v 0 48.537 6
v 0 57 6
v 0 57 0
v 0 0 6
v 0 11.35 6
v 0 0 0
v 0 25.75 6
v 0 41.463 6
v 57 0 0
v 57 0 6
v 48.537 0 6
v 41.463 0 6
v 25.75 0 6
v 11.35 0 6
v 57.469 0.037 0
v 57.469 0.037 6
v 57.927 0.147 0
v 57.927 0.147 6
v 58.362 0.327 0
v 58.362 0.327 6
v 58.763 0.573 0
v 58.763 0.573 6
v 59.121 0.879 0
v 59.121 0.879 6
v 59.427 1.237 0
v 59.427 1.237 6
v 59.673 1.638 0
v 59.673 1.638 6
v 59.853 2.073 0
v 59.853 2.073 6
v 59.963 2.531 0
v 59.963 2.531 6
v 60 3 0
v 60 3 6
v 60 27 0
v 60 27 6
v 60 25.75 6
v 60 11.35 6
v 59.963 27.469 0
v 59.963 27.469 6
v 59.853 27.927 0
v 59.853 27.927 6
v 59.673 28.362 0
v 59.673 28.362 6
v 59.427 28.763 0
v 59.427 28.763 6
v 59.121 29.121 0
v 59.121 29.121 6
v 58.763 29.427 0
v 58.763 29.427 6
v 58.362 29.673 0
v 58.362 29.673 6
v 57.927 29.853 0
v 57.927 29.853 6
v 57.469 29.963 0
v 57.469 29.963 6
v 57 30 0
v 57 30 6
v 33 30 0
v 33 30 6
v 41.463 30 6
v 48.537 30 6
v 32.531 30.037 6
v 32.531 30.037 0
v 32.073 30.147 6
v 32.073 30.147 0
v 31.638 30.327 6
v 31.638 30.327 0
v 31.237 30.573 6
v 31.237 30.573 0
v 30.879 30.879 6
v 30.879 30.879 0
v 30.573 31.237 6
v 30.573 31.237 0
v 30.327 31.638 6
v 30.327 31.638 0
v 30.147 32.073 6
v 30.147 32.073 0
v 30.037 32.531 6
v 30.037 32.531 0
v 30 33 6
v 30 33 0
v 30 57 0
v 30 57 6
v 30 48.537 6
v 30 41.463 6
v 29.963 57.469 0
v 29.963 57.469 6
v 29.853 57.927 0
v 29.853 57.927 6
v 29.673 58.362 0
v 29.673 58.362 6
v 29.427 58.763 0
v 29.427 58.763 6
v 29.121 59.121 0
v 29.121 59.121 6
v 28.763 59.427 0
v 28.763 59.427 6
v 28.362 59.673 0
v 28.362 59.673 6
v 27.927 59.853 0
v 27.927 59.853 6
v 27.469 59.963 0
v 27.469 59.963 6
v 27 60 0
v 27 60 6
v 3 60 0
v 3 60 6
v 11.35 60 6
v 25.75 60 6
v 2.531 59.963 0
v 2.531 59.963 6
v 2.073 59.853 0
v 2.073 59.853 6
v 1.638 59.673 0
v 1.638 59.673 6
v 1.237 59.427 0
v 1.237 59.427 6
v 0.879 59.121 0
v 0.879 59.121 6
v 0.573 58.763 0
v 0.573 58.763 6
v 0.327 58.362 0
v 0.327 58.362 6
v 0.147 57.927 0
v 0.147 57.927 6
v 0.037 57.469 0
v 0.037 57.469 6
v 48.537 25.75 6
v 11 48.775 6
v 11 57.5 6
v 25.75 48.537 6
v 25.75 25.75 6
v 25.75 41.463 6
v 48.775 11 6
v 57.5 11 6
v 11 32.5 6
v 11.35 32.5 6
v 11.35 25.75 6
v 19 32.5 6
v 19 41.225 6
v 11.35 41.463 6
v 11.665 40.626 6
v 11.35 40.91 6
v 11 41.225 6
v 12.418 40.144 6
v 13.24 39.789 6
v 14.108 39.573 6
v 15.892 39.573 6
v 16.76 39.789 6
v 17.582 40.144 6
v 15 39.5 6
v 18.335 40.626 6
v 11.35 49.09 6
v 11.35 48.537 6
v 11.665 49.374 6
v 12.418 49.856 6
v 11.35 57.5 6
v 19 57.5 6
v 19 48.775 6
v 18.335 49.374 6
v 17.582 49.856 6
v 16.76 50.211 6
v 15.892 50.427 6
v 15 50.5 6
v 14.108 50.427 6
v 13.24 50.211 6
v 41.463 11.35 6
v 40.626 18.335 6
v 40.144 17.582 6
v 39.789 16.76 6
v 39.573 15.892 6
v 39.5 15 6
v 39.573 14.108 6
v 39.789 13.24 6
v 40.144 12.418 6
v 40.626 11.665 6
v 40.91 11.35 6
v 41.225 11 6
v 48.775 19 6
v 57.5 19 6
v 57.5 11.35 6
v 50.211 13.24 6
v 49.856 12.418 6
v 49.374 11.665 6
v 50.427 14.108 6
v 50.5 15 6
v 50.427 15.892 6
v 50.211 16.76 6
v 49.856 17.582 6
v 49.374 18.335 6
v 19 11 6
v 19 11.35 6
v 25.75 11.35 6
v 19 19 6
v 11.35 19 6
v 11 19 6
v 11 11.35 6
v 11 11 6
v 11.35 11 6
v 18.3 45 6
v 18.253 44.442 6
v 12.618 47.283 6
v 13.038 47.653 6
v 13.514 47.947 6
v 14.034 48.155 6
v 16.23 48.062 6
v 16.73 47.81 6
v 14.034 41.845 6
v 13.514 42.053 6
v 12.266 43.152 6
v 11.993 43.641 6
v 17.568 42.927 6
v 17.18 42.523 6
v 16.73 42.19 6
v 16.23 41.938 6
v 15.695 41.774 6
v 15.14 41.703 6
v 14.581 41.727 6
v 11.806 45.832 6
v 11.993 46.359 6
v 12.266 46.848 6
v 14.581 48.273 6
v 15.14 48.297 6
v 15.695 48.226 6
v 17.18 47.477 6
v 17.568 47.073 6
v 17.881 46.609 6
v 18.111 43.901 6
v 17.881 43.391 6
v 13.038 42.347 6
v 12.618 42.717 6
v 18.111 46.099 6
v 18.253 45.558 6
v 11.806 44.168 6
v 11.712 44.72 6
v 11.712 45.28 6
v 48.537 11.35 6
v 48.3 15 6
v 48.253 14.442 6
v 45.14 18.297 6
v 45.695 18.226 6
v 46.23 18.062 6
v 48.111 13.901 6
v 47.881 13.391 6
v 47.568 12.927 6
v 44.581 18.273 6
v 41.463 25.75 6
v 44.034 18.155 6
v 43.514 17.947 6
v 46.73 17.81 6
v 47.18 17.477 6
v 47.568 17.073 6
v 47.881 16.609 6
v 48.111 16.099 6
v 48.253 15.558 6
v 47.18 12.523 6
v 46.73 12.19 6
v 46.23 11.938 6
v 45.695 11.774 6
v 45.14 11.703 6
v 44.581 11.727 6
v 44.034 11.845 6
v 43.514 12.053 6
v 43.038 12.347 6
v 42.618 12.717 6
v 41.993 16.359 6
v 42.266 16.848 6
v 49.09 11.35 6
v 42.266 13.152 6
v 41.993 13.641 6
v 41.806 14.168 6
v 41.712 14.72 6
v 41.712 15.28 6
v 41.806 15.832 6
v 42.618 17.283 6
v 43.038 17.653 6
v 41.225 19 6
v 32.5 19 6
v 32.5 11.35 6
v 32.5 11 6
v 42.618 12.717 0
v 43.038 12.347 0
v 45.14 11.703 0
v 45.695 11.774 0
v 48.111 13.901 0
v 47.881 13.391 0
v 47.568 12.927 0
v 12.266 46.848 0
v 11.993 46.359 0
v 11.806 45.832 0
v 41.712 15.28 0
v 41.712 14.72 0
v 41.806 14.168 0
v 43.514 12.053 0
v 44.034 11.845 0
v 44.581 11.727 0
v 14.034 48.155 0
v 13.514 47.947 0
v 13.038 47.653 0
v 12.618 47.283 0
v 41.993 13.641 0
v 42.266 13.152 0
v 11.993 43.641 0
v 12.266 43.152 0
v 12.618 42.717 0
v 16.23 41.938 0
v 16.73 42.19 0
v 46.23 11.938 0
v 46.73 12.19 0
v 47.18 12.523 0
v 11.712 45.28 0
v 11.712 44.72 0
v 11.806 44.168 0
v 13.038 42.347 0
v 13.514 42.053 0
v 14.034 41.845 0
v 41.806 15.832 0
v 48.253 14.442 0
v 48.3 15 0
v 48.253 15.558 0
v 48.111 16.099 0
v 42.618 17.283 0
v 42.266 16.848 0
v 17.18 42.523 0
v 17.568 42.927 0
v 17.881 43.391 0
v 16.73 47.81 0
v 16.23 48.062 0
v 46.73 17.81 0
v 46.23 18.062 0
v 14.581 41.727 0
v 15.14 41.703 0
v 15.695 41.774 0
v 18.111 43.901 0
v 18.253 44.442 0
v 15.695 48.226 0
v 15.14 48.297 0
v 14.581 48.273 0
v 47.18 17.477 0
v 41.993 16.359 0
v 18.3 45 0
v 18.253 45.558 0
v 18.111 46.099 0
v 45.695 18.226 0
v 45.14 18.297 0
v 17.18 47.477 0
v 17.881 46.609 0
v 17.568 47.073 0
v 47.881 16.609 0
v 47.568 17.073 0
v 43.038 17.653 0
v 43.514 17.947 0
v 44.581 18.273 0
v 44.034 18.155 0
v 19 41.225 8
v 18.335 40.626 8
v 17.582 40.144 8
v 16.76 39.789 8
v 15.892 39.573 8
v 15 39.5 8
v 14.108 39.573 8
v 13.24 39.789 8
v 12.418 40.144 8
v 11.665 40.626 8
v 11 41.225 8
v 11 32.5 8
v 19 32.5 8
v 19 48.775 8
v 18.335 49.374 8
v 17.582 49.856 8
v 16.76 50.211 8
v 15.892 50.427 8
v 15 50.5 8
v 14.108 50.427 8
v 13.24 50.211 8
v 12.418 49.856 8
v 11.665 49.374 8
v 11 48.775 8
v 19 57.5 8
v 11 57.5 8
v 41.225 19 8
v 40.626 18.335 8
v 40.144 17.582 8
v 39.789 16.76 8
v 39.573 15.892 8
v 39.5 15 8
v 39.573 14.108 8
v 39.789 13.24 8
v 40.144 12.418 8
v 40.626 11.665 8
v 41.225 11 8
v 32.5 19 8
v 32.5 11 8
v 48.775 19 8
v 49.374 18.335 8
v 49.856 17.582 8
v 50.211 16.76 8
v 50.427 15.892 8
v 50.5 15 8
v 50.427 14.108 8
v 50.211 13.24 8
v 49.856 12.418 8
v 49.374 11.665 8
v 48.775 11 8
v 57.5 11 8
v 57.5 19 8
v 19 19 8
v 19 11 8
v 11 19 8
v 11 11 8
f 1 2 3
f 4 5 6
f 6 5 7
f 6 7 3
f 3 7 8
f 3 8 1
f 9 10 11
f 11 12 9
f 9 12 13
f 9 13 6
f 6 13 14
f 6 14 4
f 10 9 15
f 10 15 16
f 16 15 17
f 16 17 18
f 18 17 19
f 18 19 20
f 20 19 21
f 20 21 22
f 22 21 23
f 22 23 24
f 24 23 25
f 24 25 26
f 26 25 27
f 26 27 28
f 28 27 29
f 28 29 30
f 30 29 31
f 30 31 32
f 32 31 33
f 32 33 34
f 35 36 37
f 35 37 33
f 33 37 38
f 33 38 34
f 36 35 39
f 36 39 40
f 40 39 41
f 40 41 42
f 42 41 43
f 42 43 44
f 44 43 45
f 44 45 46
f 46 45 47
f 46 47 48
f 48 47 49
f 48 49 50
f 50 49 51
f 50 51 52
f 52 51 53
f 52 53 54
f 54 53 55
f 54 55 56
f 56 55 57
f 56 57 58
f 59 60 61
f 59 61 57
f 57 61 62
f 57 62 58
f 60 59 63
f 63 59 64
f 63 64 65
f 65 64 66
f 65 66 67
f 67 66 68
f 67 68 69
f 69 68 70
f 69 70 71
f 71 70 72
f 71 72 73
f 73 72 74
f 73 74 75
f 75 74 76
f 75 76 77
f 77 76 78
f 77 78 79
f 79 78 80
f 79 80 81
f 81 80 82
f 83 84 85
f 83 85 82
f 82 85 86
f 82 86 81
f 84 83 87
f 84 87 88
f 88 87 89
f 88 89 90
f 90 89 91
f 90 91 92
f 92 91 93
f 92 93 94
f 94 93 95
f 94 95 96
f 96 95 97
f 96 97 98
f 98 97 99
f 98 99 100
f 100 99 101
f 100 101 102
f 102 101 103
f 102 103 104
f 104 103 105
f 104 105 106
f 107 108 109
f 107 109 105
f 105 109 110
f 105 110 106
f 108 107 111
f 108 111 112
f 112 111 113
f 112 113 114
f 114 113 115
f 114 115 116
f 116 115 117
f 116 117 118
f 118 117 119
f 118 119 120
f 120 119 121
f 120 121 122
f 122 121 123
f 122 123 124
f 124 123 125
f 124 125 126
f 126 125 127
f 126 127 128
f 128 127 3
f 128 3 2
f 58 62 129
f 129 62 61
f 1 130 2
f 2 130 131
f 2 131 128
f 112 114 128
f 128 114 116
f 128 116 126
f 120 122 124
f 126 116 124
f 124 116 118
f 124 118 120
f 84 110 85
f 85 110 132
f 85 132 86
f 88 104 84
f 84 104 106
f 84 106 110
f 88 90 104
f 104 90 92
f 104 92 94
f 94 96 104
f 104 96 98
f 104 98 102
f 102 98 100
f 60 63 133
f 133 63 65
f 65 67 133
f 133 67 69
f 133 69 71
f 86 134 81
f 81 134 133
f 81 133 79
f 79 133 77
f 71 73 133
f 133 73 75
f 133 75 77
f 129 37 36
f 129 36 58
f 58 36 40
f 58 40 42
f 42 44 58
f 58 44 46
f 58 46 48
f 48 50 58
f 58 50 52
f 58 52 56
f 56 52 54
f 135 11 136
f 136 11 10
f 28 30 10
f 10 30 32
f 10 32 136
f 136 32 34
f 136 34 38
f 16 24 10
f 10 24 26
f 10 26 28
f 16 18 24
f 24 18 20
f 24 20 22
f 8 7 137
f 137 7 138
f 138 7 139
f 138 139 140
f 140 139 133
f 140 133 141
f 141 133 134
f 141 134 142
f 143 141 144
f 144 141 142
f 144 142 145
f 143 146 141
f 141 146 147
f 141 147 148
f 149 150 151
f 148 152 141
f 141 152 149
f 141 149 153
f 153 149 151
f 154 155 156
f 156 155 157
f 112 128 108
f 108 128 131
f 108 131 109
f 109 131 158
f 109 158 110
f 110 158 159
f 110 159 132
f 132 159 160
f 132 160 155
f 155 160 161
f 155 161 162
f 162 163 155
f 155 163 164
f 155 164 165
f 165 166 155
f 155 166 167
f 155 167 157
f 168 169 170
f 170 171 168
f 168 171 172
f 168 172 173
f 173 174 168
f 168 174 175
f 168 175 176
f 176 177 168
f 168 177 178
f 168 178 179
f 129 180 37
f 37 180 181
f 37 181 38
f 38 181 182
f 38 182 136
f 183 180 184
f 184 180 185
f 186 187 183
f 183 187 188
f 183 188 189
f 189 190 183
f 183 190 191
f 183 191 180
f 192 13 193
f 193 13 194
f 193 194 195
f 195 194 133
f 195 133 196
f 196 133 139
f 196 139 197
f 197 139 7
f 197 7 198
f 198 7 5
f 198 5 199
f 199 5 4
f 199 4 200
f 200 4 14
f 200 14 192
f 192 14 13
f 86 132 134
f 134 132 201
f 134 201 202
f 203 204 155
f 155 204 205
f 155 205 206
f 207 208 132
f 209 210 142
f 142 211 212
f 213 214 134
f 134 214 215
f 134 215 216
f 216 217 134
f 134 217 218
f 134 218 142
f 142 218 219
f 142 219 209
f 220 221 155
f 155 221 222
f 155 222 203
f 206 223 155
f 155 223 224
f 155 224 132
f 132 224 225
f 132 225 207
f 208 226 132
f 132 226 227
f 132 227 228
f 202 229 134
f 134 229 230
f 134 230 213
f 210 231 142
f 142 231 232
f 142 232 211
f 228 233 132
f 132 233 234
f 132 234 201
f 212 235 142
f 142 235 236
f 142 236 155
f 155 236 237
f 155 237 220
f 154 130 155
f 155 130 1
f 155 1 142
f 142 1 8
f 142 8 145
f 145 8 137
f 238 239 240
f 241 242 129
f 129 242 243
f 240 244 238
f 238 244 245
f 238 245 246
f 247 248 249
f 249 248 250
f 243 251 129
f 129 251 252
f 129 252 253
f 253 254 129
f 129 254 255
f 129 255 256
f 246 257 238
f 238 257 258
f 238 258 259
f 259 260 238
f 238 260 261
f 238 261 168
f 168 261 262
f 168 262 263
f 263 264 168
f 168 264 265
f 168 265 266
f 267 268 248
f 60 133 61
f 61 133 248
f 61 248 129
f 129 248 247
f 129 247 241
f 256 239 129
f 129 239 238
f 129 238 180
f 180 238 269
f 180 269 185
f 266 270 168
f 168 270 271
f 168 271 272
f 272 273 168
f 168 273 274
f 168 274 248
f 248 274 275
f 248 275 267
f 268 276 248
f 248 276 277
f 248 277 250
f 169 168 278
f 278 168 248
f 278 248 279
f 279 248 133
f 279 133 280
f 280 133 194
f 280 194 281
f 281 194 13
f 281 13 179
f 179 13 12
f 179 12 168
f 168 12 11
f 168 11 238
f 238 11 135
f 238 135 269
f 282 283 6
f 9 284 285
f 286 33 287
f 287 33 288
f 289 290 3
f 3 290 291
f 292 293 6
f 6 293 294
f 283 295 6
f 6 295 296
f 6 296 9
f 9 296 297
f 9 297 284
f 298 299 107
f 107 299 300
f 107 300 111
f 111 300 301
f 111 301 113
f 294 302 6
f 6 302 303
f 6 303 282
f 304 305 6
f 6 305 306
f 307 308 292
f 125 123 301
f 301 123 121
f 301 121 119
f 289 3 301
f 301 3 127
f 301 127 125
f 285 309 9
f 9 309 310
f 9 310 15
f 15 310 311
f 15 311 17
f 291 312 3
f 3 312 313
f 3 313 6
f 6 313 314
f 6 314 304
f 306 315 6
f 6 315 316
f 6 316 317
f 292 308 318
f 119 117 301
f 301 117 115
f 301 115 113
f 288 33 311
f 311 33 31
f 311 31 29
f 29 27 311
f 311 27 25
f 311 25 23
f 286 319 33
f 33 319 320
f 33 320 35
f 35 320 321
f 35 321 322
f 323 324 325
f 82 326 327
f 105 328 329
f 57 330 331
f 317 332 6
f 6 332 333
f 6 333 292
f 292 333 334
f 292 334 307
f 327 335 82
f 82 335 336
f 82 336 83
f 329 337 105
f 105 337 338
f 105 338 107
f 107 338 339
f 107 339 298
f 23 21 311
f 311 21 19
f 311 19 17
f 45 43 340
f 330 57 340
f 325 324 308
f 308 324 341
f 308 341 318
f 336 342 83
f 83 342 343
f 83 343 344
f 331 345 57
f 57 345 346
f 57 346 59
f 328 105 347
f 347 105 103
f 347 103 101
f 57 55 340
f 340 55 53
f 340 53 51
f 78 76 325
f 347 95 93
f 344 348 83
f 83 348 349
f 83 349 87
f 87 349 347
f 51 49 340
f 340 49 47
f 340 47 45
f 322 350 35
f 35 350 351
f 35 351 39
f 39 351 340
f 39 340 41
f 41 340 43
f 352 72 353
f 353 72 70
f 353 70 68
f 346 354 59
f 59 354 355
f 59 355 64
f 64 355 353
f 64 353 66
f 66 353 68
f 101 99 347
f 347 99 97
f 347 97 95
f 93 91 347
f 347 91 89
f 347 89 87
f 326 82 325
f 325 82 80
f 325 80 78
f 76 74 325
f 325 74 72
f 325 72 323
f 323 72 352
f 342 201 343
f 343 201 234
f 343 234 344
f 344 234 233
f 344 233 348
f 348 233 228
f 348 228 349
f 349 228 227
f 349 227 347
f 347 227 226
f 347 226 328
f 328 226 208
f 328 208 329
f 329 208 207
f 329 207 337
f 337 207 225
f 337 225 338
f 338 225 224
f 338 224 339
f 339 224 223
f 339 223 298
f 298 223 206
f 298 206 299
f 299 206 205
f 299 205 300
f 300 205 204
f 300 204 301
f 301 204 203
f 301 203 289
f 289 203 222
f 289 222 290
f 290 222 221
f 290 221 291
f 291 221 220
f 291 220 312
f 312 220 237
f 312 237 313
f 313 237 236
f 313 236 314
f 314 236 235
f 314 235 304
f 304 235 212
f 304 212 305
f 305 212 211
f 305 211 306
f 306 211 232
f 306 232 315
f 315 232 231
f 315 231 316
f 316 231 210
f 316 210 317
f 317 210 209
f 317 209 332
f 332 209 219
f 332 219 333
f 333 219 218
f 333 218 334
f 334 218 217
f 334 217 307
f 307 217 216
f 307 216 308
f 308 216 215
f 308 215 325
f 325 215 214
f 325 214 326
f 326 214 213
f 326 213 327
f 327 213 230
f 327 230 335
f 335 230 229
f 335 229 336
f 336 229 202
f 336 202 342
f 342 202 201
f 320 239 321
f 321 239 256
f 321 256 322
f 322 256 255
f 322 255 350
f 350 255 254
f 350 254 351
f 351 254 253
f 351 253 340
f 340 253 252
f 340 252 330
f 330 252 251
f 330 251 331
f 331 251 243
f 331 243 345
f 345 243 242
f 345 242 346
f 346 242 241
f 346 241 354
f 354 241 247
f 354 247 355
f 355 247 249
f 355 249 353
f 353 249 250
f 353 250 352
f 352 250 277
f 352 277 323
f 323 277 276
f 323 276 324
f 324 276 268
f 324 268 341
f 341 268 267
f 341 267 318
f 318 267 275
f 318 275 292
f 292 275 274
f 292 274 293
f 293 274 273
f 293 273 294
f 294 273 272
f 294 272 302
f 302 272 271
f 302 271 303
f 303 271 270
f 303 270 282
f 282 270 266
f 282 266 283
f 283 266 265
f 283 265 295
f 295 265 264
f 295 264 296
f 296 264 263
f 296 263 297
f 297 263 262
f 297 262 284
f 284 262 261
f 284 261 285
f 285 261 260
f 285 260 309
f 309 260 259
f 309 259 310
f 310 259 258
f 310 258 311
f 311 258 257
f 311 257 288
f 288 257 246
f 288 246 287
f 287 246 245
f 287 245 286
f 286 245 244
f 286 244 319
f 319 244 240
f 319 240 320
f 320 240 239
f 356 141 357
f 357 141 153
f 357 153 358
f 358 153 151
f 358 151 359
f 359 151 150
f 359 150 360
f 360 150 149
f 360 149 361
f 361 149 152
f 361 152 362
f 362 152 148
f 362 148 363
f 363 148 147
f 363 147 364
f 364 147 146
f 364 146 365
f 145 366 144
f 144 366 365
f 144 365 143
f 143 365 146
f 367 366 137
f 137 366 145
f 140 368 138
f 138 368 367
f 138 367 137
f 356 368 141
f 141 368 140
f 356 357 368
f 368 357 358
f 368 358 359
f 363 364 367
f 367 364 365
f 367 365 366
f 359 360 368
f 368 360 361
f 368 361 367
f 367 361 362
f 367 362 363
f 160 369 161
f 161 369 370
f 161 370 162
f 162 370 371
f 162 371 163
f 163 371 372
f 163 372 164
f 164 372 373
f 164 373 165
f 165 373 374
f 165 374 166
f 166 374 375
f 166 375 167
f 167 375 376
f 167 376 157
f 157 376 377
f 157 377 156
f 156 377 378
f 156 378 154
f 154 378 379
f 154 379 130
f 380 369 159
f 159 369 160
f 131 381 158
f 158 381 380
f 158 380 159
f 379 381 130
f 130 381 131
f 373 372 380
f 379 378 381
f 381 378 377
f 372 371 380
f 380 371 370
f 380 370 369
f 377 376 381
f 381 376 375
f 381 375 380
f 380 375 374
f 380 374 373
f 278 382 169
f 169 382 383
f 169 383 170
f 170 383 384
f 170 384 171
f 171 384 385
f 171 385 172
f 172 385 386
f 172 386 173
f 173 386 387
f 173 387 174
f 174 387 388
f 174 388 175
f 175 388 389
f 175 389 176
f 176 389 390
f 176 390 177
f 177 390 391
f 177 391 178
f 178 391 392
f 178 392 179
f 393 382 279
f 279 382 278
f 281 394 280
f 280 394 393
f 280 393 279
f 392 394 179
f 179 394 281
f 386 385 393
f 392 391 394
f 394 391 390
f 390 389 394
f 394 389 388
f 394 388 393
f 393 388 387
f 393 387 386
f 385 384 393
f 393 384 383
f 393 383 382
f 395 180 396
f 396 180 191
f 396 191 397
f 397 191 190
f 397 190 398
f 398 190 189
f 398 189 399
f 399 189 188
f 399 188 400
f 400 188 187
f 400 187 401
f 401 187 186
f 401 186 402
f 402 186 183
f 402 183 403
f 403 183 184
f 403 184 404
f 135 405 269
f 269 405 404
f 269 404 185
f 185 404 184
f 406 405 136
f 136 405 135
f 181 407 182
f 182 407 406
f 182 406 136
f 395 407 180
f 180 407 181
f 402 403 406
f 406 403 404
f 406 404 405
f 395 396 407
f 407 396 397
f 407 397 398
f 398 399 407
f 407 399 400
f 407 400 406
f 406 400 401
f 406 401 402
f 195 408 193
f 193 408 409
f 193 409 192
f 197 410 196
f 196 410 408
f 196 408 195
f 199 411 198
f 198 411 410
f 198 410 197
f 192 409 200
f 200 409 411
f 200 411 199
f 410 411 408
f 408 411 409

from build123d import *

# Parameters (mm, degrees)
P_IDAT_VYSUNUT_M1_DEPTH = 6
M6_D_RA_S_V_L_1_D       = 6.6
SKICA5_W                = 8
SKICA5_H                = 8
P_IDAT_VYSUNUT_M2_DEPTH = 2


with BuildPart() as part:
    # Skica1 → Přidat vysunutím1 (new body)
    with BuildSketch(Plane.XY):
        with BuildLine():
            Line((0, 0), (57, 0))
            ThreePointArc((57, 0), (59.121320344, 0.878679656), (60, 3))
            Line((60, 3), (60, 27))
            ThreePointArc((60, 27), (59.121320344, 29.121320344), (57, 30))
            Line((57, 30), (33, 30))
            ThreePointArc((33, 30), (30.878679656, 30.878679656), (30, 33))
            Line((30, 33), (30, 57))
            ThreePointArc((30, 57), (29.121320344, 59.121320344), (27, 60))
            Line((27, 60), (3, 60))
            ThreePointArc((3, 60), (0.878679656, 59.121320344), (0, 57))
            Line((0, 57), (0, 0))
        make_face()
    extrude(amount=P_IDAT_VYSUNUT_M1_DEPTH)

    # M6 díra s vůlí1 (through all)
    with Locations(Plane.XY.offset(6)):
        with Locations((45, 15), (15, 45)):
            Hole(M6_D_RA_S_V_L_1_D / 2)

    # Skica5 → Přidat vysunutím2 (add)
    with BuildSketch(Plane.XY.offset(6)):
        with BuildLine():
            ThreePointArc((19, 41.225082782), (15, 39.5), (11, 41.225082782))
            Line((11, 41.225082782), (11, 32.5))
            Line((11, 32.5), (19, 32.5))
            Line((19, 32.5), (19, 41.225082782))
        make_face()
        with BuildLine():
            Line((19, 57.5), (11, 57.5))
            Line((11, 57.5), (11, 48.774917218))
            ThreePointArc((11, 48.774917218), (15, 50.5), (19, 48.774917218))
            Line((19, 48.774917218), (19, 57.5))
        make_face()
        with BuildLine():
            Line((41.225082782, 19), (32.5, 19))
            Line((32.5, 19), (32.5, 11))
            Line((32.5, 11), (41.225082782, 11))
            ThreePointArc((41.225082782, 11), (39.5, 15), (41.225082782, 19))
        make_face()
        with BuildLine():
            Line((57.5, 19), (48.774917218, 19))
            ThreePointArc((48.774917218, 19), (50.050348735, 17.178067412), (50.5, 15))
            ThreePointArc((50.5, 15), (50.050348735, 12.821932588), (48.774917218, 11))
            Line((48.774917218, 11), (57.5, 11))
            Line((57.5, 11), (57.5, 19))
        make_face()
        with Locations((15, 15)):
            Rectangle(SKICA5_W, SKICA5_H)
    extrude(amount=P_IDAT_VYSUNUT_M2_DEPTH)


solid = part.part
